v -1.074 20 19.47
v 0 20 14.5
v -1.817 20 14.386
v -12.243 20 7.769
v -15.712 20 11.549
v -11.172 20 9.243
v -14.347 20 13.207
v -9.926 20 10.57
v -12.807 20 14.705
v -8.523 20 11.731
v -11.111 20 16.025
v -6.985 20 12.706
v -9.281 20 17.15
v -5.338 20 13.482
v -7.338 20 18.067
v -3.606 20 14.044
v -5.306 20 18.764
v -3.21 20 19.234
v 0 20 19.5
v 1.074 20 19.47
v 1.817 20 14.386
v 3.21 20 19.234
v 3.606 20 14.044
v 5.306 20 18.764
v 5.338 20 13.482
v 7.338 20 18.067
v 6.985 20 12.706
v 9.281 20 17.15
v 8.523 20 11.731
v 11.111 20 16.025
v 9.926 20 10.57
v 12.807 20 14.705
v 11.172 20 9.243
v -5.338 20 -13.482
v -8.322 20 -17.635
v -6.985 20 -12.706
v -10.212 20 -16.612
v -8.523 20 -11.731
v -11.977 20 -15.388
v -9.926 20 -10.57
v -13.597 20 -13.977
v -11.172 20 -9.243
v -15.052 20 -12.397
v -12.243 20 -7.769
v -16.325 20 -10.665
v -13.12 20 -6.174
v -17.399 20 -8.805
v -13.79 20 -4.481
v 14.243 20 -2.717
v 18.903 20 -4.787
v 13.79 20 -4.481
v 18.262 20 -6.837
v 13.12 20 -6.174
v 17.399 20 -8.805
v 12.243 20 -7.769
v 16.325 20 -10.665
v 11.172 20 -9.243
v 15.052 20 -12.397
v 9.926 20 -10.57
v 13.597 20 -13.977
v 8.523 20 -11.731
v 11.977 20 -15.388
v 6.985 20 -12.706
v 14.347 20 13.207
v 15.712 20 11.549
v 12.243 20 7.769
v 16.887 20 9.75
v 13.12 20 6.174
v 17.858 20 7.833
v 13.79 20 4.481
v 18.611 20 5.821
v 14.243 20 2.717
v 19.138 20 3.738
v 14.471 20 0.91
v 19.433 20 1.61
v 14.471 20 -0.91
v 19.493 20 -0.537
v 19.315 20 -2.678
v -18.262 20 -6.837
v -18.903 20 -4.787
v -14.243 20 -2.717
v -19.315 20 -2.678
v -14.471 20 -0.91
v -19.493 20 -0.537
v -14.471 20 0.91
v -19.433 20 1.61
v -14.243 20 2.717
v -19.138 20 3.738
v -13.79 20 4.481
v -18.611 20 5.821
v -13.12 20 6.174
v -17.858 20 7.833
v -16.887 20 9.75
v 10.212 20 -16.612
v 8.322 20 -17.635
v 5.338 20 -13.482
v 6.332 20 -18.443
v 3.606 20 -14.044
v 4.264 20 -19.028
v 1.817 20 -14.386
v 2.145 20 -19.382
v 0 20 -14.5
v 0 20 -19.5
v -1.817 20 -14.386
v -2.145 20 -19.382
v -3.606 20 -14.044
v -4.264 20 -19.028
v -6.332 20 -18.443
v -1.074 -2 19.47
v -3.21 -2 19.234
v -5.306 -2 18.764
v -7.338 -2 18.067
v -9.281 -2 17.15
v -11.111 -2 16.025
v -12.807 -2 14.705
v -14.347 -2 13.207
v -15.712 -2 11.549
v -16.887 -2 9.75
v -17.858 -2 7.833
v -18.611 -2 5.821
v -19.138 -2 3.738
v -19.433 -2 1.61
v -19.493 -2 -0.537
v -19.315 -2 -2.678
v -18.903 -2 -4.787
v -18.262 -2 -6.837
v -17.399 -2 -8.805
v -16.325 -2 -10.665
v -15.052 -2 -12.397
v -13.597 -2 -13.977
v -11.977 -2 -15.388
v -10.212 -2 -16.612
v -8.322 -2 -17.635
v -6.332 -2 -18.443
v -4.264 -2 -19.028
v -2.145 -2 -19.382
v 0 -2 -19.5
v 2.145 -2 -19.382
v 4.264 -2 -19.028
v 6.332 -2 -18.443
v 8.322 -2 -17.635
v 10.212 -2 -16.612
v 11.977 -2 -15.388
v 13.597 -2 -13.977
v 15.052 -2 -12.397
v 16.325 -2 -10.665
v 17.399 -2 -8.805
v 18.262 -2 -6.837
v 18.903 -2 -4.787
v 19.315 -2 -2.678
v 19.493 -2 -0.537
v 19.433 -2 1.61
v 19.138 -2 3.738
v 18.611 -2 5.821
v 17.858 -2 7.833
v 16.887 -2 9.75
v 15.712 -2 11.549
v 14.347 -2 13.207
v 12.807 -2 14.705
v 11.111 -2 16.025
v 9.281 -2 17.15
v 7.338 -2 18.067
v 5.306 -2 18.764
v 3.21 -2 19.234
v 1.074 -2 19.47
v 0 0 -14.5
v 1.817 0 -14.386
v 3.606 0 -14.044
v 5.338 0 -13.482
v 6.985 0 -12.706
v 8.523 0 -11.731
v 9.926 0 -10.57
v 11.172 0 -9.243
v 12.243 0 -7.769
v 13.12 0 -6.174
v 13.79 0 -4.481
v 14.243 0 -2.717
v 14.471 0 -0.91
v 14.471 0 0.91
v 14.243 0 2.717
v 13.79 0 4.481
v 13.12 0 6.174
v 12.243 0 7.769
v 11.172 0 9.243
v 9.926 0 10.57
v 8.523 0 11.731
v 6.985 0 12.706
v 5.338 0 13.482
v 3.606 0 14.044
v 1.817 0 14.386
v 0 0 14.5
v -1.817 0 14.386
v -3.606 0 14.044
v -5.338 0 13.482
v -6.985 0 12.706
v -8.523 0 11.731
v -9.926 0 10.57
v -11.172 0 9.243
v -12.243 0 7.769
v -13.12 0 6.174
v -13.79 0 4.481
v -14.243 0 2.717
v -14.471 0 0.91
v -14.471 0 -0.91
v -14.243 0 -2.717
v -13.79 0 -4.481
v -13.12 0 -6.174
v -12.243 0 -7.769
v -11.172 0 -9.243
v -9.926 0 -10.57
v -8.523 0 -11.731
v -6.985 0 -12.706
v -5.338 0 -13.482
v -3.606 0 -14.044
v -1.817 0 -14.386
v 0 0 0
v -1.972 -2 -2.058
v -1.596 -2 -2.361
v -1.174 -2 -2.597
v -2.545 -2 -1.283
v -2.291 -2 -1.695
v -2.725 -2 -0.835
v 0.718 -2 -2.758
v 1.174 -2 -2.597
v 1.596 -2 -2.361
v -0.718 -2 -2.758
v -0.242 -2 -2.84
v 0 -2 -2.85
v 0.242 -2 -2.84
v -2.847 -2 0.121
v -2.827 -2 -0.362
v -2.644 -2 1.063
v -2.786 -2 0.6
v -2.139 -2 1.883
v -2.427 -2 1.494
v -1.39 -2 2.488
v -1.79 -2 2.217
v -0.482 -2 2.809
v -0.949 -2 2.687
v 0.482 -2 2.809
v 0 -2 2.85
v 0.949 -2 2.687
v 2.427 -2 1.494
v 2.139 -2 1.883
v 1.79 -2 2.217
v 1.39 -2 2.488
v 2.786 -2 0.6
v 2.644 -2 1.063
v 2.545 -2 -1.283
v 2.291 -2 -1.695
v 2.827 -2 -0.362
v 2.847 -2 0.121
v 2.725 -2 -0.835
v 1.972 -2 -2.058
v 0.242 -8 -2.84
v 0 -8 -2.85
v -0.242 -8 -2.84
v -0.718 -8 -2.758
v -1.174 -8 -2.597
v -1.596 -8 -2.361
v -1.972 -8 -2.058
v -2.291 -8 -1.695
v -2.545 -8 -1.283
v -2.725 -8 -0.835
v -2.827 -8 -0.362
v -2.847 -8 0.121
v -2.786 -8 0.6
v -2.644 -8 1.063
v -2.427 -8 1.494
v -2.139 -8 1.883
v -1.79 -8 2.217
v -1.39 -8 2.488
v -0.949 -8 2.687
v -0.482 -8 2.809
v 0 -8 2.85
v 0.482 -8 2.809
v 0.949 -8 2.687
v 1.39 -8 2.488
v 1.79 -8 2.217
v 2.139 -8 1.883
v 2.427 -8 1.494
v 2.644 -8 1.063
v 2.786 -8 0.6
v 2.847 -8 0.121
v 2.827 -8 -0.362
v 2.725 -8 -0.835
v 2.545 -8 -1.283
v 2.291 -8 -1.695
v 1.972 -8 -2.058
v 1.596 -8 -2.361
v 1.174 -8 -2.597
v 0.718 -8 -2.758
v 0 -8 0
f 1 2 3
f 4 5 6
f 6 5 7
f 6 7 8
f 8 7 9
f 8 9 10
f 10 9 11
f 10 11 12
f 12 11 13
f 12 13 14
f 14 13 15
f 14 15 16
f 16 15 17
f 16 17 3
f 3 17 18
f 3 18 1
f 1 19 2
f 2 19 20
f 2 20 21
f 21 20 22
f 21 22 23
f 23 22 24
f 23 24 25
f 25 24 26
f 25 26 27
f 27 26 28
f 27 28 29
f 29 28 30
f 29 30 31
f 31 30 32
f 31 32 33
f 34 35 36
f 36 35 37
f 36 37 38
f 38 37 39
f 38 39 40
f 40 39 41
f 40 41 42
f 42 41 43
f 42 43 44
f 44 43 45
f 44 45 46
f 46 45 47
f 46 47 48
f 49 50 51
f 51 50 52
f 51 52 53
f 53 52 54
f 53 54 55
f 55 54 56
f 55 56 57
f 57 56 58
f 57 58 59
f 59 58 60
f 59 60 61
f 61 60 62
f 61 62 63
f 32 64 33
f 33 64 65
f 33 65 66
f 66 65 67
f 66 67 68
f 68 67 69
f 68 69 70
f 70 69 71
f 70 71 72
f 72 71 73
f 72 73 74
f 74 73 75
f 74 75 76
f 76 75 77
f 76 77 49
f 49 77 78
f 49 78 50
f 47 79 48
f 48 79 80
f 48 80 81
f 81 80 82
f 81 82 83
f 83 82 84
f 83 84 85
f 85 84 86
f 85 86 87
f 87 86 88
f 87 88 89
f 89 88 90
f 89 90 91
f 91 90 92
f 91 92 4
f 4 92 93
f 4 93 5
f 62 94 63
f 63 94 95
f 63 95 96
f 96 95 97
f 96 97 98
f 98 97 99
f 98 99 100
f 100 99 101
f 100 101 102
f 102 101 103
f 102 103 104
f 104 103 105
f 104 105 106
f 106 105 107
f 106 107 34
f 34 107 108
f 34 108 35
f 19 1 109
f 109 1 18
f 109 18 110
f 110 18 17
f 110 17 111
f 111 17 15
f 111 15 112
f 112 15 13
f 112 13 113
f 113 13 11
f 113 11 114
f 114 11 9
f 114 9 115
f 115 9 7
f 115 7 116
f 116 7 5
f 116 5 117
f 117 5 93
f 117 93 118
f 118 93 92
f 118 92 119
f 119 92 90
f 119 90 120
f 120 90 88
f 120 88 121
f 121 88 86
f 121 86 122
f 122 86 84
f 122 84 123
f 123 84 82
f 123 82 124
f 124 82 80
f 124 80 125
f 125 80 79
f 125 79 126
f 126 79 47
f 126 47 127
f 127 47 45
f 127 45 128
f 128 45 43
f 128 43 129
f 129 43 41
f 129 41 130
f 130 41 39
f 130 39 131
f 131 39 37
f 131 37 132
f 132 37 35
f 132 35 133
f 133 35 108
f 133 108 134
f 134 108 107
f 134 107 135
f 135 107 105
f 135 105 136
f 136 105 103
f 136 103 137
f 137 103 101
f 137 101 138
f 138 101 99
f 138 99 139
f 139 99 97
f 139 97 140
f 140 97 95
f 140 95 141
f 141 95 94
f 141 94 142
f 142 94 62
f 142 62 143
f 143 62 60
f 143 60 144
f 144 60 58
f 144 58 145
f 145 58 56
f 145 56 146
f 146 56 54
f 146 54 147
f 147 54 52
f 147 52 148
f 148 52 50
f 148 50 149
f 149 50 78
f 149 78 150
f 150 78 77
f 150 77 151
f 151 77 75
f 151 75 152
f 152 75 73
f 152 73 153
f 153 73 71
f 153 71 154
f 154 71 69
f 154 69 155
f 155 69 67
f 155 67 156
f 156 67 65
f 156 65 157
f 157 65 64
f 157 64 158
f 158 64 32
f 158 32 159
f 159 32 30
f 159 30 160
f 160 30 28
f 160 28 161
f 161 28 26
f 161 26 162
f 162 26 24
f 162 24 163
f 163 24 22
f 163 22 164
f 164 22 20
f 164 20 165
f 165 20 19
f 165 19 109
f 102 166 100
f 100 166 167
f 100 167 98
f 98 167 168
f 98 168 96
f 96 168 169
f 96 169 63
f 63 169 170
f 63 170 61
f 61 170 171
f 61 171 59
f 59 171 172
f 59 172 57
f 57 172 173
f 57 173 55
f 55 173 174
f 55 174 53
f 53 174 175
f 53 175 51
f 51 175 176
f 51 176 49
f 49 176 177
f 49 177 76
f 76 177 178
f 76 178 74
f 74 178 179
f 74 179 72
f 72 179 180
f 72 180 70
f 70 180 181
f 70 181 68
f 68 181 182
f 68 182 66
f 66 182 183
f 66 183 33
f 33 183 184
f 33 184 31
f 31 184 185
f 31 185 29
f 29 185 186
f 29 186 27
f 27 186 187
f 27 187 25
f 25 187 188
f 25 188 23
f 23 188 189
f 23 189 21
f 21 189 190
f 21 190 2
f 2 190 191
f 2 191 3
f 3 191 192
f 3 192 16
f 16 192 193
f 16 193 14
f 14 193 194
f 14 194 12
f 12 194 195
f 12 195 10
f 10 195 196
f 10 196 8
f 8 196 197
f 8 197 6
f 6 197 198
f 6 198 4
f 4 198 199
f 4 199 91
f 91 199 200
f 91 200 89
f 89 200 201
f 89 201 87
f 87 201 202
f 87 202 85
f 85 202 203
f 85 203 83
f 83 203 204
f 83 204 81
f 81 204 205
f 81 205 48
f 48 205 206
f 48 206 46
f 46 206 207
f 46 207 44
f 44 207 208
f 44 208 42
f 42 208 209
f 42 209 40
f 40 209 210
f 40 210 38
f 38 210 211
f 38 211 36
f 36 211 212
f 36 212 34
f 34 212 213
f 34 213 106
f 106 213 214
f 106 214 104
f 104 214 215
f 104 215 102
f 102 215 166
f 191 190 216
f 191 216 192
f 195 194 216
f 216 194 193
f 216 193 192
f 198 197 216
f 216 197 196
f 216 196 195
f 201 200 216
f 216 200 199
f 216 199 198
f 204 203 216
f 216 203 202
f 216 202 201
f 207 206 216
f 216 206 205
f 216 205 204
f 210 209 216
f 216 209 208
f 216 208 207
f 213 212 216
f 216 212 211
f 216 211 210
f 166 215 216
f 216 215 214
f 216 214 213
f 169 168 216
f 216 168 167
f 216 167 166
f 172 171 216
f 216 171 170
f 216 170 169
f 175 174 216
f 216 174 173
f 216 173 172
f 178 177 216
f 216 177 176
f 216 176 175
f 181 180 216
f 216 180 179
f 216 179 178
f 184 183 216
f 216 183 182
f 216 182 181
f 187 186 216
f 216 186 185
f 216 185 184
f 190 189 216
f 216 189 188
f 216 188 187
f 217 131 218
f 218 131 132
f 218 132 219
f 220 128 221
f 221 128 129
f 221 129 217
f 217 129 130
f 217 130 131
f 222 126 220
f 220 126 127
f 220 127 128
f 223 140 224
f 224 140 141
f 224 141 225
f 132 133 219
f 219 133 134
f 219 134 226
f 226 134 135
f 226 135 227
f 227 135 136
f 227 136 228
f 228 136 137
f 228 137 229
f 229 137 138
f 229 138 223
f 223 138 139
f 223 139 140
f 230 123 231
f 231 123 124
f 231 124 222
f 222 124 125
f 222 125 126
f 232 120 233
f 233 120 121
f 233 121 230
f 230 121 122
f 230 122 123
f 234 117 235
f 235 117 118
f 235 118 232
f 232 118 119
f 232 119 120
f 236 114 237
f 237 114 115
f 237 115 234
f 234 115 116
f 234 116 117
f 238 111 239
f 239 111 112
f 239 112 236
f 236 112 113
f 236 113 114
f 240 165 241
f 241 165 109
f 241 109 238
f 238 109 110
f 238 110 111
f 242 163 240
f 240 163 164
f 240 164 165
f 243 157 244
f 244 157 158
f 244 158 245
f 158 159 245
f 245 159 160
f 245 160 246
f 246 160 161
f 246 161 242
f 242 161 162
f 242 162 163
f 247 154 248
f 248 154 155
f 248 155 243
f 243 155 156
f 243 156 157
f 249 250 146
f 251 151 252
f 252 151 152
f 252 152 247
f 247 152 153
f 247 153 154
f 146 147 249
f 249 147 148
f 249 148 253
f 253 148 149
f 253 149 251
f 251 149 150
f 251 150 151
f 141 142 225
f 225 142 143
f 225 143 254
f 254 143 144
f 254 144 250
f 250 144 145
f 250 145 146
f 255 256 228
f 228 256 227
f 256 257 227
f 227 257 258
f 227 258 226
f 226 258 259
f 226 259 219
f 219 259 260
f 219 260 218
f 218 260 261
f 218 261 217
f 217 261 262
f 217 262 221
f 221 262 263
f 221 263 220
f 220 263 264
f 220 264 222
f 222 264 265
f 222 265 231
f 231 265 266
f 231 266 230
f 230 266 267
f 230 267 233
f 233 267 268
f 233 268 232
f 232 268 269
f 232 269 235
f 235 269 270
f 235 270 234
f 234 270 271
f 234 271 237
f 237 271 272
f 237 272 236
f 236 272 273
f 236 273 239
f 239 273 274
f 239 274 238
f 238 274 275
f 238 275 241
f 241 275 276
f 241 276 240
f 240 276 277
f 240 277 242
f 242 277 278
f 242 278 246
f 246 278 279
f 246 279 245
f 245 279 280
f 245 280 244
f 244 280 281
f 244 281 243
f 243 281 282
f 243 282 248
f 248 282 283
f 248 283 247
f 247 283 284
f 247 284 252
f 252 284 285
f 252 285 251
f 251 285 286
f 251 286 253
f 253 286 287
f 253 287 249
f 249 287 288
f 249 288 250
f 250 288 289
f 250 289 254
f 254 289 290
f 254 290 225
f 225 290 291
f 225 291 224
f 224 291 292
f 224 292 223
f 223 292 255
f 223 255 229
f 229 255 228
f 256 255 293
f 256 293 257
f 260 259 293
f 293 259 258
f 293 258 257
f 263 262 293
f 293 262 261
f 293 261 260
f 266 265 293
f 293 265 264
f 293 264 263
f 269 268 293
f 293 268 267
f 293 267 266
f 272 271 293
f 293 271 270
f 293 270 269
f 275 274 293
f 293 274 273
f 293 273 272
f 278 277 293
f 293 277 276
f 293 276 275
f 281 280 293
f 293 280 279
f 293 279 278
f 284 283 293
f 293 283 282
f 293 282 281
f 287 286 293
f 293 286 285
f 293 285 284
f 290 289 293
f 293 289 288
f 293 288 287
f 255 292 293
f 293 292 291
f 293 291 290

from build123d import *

# Parameters (mm, degrees)
SKETCH2_R           = 19.5
SKETCH2_R_2         = 14.5
BOSS_EXTRUDE1_DEPTH = 20
BOSS_EXTRUDE2_START = 2
SKETCH3_R           = 19.5
BOSS_EXTRUDE2_DEPTH = 2
SKETCH4_R           = 2.85
BOSS_EXTRUDE3_DEPTH = 6


with BuildPart() as part:
    # Sketch2 → Boss-Extrude1 (new body)
    with BuildSketch(Plane(origin=(0, 0, 0), x_dir=(1, 0, 0), z_dir=(0, 1, 0))):
        with Locations(Location((0, 0, 0), (0, 0, 270))):
            Circle(SKETCH2_R)
        with Locations(Location((0, 0, 0), (0, 0, 270))):
            Circle(SKETCH2_R_2, mode=Mode.SUBTRACT)
    extrude(amount=BOSS_EXTRUDE1_DEPTH)

    # Sketch3 → Boss-Extrude2 (add)
    with BuildSketch(Plane.XZ.offset(BOSS_EXTRUDE2_START)):
        with Locations(Location((0, 0, 0), (0, 0, 270))):
            Circle(SKETCH3_R)
    extrude(amount=-BOSS_EXTRUDE2_DEPTH)

    # Sketch4 → Boss-Extrude3 (add)
    with BuildSketch(Plane.XZ.offset(2)):
        with Locations(Location((0, 0, 0), (0, 0, 270))):
            Circle(SKETCH4_R)
    extrude(amount=BOSS_EXTRUDE3_DEPTH)


solid = part.part
